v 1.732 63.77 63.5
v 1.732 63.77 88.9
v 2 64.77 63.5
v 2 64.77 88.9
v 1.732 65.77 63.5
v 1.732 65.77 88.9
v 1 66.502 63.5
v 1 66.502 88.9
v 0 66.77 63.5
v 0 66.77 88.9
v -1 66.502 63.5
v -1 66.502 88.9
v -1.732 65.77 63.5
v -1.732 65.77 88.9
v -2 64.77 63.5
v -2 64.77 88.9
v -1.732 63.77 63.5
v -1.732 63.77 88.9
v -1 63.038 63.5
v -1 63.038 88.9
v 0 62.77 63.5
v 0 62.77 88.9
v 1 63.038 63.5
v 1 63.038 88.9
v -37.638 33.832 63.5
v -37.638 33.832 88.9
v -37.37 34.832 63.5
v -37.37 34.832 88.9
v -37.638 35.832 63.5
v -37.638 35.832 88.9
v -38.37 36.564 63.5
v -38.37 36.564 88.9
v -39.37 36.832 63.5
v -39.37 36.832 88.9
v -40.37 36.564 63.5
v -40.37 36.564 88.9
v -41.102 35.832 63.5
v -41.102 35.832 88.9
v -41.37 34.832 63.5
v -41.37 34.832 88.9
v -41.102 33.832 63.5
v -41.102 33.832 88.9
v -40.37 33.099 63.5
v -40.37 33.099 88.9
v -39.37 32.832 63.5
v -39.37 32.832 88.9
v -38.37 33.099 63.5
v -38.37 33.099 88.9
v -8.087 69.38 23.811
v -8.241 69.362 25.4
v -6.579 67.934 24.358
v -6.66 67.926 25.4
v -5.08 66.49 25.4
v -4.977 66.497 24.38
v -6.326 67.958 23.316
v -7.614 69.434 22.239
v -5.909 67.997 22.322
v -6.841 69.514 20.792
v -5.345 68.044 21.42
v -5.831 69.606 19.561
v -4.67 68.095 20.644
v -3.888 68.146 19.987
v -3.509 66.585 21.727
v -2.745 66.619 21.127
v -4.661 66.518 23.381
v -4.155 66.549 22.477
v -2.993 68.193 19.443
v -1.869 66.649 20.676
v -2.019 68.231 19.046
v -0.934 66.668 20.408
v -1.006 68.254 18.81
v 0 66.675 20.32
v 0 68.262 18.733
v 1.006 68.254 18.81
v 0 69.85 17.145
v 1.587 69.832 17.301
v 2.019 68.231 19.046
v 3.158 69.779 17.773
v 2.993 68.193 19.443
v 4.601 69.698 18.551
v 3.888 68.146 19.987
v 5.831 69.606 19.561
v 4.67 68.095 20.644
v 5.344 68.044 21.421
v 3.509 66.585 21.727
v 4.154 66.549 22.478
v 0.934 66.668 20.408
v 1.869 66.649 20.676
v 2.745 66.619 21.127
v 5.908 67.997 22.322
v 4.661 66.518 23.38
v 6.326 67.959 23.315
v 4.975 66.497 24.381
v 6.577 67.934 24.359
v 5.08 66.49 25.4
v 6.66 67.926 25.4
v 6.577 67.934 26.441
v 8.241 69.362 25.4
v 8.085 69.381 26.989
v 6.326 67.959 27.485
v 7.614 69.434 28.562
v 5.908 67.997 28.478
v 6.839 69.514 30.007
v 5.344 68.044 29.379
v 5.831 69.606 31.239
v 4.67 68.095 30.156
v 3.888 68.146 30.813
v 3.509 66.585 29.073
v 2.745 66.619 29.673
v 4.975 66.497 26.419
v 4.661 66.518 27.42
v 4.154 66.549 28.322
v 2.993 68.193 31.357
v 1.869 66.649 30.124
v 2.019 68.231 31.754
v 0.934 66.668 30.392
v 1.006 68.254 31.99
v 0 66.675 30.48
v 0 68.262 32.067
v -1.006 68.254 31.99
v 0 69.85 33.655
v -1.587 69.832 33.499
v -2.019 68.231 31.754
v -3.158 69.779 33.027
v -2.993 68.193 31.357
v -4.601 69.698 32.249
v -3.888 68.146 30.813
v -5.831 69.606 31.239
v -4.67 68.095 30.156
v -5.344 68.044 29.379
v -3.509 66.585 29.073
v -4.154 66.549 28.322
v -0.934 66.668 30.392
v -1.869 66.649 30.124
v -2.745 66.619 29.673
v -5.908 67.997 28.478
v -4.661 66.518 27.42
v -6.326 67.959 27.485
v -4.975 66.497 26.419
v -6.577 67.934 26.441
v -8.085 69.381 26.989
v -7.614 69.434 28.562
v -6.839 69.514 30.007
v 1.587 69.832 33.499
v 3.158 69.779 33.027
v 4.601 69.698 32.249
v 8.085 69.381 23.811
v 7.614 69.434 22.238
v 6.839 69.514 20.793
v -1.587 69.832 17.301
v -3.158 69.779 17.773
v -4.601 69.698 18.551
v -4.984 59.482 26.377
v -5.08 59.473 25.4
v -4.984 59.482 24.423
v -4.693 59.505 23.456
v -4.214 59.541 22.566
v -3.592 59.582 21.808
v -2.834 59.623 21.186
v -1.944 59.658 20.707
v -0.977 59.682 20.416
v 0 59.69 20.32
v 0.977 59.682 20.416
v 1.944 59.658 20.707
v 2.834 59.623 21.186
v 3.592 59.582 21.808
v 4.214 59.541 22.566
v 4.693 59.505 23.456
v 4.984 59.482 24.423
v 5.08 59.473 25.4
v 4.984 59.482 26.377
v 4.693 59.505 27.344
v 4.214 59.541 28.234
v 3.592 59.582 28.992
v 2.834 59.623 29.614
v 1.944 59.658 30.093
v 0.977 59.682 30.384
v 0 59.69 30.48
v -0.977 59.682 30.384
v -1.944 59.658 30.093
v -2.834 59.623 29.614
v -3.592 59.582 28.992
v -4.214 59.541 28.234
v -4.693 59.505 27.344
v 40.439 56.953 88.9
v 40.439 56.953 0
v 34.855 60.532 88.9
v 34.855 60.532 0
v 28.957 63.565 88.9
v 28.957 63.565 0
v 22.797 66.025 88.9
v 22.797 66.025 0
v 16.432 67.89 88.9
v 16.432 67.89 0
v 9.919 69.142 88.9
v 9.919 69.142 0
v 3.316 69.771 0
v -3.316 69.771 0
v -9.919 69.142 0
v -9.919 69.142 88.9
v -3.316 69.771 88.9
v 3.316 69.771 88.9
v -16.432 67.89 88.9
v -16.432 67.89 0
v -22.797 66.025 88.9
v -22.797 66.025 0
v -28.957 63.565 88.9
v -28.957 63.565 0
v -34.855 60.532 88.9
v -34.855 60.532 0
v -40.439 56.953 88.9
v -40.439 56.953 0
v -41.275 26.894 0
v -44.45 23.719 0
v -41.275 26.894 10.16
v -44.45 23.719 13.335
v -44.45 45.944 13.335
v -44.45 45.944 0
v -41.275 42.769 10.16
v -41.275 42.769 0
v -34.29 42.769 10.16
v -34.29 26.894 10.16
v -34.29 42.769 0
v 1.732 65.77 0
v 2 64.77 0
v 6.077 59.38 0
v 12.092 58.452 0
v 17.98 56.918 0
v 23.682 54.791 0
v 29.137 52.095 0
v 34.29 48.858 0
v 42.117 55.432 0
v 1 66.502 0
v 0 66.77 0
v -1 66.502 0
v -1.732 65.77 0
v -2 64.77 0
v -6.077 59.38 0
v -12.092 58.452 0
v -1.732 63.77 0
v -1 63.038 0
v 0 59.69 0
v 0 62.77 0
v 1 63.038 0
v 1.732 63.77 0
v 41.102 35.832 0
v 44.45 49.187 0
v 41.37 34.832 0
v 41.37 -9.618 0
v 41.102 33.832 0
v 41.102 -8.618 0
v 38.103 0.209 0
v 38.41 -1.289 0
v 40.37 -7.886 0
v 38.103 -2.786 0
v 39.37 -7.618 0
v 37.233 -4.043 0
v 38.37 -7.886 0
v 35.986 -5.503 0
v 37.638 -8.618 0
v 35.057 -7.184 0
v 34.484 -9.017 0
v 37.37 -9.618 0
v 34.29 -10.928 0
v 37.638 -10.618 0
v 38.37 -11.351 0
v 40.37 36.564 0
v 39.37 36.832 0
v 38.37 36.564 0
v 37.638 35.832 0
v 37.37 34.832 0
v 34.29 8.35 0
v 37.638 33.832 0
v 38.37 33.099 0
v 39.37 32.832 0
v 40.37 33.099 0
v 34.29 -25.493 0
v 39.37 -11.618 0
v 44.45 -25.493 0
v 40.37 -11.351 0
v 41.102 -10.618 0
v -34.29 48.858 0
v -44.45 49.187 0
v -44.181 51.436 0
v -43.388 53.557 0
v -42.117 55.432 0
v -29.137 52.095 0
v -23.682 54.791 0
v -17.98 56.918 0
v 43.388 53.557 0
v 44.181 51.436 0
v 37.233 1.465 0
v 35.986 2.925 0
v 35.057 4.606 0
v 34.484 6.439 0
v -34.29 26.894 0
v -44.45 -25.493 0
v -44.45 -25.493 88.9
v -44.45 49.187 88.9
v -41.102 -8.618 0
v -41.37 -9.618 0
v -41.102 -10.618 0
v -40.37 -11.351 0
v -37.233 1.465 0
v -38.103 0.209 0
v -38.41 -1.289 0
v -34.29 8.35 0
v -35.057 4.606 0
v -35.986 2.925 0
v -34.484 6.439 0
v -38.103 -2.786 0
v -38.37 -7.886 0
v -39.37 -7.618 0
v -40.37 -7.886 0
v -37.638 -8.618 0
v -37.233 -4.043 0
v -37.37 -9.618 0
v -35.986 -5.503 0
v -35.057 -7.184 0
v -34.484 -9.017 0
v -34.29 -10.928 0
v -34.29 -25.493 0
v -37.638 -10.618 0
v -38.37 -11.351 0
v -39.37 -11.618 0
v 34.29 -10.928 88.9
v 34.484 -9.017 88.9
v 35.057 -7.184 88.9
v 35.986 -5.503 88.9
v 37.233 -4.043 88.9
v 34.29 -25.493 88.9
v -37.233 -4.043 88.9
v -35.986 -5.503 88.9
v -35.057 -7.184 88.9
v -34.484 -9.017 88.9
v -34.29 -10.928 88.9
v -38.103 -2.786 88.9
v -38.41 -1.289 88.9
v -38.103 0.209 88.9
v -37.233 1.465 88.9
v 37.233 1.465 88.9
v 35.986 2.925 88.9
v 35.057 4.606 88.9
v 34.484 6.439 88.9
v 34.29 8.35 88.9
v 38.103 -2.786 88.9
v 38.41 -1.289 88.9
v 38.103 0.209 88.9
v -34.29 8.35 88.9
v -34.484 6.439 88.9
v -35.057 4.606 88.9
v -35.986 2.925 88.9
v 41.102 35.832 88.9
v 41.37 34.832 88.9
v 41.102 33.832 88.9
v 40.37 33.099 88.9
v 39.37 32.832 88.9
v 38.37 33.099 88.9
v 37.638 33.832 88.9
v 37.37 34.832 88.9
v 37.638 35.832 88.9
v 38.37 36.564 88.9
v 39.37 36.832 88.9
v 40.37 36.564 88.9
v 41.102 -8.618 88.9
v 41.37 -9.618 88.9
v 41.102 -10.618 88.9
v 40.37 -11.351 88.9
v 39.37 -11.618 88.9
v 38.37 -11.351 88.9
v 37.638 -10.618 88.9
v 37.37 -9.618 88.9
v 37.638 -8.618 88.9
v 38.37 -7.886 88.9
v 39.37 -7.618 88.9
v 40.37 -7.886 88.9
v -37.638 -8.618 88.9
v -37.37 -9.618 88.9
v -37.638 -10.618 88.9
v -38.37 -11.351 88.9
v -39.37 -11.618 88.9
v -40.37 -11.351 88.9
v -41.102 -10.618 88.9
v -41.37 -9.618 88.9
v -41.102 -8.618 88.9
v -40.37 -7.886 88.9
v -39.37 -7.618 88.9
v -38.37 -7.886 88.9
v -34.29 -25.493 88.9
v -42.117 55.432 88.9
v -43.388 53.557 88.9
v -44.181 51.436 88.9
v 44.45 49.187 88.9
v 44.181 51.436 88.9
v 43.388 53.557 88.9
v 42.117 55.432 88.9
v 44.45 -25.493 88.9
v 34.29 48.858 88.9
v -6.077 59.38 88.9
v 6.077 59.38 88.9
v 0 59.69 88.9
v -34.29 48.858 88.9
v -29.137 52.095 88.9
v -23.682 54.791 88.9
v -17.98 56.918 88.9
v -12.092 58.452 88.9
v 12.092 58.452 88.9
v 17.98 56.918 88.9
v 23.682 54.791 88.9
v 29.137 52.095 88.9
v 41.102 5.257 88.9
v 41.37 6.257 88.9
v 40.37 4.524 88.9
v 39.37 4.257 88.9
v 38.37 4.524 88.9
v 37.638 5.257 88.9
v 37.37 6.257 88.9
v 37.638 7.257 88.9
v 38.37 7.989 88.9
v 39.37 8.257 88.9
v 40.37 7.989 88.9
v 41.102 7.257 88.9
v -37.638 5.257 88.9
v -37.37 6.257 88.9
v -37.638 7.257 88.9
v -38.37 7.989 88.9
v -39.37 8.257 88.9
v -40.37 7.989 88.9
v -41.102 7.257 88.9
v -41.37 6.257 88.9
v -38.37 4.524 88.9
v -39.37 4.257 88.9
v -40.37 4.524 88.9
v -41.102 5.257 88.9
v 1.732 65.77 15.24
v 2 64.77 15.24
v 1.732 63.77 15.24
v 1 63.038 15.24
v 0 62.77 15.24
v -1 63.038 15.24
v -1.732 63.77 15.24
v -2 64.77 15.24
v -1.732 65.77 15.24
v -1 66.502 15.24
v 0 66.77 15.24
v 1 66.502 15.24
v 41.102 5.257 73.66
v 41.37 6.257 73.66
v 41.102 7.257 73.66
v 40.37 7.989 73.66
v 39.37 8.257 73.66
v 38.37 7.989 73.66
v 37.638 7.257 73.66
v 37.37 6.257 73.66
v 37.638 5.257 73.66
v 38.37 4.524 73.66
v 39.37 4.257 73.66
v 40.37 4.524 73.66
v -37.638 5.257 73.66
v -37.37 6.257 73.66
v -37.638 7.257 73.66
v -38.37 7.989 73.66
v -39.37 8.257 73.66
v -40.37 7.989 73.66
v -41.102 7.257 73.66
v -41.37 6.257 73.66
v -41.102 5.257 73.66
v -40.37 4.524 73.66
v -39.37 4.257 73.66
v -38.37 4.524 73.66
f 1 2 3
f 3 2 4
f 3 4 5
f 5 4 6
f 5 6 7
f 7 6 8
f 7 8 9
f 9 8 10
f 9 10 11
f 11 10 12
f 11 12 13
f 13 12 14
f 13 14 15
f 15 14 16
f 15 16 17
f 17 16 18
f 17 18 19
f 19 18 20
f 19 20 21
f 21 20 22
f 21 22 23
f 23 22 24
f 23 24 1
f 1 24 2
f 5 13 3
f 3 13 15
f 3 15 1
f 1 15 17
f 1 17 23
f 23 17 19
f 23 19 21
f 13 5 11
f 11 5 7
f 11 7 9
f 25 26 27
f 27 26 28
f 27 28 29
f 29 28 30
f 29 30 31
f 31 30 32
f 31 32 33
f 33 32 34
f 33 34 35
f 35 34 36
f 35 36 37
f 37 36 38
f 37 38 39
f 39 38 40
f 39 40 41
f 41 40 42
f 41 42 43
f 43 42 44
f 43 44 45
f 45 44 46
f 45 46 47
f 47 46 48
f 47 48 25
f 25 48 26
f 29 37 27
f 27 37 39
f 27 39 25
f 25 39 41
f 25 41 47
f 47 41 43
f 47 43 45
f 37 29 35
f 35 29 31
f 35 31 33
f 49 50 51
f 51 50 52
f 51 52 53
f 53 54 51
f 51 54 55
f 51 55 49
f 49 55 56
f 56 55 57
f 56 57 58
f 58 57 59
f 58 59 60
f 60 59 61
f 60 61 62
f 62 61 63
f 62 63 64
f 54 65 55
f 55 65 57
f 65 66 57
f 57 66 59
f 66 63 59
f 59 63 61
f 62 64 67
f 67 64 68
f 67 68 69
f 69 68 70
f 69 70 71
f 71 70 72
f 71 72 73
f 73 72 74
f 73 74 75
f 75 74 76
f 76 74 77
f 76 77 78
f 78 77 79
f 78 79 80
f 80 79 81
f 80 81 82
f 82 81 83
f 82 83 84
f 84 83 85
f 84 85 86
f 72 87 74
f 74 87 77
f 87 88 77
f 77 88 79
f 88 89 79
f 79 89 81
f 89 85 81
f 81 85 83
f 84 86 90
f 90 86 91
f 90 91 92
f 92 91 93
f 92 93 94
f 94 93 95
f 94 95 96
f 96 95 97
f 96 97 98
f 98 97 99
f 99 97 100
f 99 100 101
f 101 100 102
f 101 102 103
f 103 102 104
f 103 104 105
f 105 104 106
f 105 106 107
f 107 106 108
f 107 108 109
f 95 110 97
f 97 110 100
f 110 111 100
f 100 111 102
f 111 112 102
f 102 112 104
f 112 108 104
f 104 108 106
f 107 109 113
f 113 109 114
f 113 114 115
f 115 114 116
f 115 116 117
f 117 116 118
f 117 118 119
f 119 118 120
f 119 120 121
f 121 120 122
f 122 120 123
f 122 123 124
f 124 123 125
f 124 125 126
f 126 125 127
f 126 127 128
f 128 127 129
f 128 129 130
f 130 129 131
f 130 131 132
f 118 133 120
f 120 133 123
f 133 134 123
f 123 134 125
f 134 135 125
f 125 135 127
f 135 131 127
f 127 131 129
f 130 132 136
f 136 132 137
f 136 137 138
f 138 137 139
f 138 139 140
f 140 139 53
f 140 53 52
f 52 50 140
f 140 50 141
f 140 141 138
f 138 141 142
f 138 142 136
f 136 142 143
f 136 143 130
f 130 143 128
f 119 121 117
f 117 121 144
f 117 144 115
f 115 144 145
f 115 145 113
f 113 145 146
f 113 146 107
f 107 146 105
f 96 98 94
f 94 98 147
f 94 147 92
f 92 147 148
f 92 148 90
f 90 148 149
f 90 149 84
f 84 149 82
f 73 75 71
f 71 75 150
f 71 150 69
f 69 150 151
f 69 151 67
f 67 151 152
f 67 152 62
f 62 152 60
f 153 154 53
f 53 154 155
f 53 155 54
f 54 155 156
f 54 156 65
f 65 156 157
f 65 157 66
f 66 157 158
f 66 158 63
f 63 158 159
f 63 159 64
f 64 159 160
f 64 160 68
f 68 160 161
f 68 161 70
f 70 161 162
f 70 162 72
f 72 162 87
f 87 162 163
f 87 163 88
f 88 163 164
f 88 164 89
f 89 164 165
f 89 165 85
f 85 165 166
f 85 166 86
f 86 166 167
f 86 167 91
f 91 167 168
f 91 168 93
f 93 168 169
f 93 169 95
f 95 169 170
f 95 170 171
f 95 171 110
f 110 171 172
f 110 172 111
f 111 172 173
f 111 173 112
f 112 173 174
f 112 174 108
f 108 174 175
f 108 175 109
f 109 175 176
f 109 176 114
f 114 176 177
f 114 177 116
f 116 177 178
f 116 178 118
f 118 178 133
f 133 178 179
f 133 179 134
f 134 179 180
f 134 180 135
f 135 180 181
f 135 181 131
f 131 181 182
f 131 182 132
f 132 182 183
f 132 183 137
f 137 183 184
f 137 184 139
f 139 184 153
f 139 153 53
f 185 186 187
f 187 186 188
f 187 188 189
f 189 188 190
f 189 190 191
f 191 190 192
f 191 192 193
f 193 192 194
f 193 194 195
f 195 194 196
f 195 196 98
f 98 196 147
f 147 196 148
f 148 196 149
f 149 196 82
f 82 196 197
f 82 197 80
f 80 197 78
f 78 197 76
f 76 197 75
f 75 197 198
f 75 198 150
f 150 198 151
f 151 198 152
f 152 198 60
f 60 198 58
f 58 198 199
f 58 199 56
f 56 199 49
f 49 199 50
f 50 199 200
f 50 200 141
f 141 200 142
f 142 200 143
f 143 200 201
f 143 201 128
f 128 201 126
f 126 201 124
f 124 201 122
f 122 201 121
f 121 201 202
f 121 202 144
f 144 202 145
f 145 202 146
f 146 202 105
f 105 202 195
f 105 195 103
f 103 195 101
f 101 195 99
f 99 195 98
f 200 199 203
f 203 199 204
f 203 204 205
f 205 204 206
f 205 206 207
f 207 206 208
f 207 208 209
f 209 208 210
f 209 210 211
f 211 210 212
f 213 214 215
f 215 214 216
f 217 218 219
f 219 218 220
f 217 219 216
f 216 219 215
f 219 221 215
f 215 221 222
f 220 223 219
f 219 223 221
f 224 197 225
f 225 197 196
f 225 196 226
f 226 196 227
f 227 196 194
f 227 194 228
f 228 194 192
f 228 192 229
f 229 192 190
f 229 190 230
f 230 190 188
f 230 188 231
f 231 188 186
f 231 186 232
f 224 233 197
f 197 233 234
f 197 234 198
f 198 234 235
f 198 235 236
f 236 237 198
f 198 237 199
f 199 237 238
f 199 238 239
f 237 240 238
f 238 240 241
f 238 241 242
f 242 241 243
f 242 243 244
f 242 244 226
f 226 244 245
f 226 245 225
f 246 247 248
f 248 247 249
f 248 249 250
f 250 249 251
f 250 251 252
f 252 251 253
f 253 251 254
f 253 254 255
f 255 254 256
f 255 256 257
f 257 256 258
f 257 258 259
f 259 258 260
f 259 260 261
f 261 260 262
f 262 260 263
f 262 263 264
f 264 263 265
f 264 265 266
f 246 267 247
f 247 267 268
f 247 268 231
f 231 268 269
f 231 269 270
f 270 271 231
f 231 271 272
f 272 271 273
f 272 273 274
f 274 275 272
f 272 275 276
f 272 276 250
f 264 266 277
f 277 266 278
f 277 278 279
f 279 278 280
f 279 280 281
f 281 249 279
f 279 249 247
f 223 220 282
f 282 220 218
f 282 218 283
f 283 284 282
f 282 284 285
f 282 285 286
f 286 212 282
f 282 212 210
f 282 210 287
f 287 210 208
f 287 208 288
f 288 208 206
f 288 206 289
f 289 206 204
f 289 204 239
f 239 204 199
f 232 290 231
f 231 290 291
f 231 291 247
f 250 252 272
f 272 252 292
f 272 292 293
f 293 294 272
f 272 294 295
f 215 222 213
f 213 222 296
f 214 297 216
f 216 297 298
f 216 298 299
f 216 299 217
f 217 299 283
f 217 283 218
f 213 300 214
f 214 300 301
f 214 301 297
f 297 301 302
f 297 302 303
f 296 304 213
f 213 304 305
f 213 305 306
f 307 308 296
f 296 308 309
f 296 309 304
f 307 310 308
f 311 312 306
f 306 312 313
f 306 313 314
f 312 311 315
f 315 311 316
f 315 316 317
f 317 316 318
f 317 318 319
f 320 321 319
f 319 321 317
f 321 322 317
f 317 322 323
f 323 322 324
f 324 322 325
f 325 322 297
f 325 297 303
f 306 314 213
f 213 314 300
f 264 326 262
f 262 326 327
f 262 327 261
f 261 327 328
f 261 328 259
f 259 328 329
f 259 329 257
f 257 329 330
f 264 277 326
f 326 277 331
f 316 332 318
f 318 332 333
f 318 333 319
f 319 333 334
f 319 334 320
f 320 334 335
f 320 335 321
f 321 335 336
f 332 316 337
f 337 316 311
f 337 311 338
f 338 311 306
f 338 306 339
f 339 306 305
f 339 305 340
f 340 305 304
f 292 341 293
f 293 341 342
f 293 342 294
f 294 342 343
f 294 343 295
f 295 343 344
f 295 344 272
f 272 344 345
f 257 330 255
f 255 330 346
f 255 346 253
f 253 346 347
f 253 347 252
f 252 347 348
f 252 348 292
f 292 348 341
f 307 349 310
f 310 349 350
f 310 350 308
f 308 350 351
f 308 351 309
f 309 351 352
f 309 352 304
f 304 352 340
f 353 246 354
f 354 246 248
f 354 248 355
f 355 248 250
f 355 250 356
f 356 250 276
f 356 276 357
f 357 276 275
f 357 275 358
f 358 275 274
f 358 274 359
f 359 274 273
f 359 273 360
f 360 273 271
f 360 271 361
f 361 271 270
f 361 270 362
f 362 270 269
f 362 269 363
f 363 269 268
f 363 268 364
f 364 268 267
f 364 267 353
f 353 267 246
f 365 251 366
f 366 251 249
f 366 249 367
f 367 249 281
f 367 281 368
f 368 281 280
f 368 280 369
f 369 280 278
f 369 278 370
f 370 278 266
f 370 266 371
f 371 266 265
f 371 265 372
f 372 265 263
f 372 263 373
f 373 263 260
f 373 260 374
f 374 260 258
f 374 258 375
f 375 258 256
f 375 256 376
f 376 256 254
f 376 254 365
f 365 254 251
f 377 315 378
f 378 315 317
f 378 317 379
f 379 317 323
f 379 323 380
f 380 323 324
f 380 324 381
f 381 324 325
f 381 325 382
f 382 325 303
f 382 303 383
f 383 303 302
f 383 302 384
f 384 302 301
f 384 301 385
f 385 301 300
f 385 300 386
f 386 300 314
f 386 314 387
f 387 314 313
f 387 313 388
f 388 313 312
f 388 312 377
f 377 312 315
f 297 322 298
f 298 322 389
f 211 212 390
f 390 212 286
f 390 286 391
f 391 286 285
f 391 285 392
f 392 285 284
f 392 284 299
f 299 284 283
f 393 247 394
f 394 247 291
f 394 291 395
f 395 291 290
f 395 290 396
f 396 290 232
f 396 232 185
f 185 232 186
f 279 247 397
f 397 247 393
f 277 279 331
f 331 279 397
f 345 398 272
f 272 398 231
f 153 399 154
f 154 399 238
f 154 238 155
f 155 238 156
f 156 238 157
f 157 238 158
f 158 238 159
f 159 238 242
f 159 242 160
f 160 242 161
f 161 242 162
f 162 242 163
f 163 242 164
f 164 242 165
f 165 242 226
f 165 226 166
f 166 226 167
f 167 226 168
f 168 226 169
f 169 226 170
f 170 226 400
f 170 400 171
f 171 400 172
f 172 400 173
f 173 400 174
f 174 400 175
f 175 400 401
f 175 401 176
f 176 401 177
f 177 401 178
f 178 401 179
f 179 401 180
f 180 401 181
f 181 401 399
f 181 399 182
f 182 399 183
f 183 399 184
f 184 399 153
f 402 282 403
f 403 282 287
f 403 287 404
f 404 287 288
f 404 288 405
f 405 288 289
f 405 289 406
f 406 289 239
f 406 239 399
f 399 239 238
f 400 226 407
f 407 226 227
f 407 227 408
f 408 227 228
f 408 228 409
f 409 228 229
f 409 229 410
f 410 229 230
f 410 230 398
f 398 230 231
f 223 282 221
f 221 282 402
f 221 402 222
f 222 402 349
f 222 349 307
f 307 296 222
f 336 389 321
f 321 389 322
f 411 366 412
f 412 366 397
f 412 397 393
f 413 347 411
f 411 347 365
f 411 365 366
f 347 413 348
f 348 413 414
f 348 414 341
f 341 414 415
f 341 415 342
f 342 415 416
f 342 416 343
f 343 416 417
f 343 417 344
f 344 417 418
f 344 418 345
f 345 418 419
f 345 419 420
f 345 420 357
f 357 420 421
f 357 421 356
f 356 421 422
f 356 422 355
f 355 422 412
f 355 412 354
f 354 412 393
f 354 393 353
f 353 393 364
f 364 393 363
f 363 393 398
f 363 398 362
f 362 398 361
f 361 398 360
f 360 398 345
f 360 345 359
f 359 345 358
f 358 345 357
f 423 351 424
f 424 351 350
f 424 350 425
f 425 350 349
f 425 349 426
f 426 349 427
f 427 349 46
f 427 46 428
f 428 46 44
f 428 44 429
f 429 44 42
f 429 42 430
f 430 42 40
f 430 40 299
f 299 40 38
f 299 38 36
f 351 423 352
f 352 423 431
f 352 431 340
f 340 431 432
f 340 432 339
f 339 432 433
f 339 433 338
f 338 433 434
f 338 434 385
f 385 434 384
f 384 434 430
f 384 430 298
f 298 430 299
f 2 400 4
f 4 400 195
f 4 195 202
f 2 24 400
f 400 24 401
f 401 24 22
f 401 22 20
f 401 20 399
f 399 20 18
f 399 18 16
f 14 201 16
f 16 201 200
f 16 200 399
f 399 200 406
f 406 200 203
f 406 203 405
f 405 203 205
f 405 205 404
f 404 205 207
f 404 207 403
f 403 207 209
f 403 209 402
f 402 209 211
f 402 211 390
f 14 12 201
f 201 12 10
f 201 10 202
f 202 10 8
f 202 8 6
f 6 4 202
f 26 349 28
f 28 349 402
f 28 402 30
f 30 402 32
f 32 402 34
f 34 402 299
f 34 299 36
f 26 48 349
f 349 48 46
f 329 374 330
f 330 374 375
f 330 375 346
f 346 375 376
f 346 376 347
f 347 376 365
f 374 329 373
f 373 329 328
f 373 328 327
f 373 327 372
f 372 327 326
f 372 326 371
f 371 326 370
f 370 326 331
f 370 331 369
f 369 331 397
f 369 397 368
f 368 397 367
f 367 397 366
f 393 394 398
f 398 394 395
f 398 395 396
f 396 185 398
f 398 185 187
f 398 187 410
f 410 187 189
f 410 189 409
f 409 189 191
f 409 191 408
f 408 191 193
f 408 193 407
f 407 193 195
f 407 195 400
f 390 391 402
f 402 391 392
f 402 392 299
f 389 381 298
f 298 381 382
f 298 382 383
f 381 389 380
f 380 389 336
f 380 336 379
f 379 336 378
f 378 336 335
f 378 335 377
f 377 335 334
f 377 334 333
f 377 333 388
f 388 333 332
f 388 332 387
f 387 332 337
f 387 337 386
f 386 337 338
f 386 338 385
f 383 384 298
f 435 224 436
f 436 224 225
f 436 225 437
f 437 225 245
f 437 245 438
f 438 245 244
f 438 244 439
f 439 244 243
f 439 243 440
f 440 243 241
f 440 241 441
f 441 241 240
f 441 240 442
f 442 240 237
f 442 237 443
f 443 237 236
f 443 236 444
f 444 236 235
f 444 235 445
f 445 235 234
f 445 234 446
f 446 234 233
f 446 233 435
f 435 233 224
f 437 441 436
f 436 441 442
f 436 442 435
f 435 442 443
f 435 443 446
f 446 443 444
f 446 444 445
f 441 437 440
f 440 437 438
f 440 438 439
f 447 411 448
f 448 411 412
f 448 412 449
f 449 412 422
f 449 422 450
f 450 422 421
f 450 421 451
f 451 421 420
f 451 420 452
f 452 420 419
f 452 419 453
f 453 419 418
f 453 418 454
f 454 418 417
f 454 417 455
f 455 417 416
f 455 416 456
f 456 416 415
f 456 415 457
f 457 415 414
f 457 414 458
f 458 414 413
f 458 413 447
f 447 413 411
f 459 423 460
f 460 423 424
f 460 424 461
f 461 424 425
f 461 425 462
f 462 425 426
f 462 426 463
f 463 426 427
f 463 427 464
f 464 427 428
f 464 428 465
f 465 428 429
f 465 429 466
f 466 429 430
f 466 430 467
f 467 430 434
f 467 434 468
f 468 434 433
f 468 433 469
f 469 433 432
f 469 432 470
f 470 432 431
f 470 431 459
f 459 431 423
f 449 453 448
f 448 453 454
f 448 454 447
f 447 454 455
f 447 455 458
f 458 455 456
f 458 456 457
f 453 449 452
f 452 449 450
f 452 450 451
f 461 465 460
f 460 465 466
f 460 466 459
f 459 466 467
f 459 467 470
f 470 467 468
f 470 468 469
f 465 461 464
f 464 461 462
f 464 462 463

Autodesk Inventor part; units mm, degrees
ref_plane "YZ Plane" through (0, 0, 0) normal (1, 0, 0) x (0, 1, 0)
ref_plane "XZ Plane" through (0, 0, 0) normal (0, 1, 0) x (-1, 0, 0)
ref_plane "XY Plane" through (0, 0, 0) normal (0, 0, 1) x (1, 0, 0)
sketch "Sketch1" plane through (0, 0, 0) normal (0, 0, 1) x (1, 0, 0)
  arc A0 (40.4395, 56.9532) -> (-40.4395, 56.9532) centre (0, 0) ccw
  arc A1 (-40.4395, 56.9532) -> (-44.45, 49.1869) centre (-34.925, 49.1869) ccw
  circle A2 centre (0, 64.77) radius 2
  arc A3 (44.45, 49.1869) -> (40.4395, 56.9532) centre (34.925, 49.1869) ccw
  line L0 (44.45, -25.4935) -> (44.45, 49.1869)
  line L1 (-44.45, 49.1869) -> (-44.45, -25.4935)
  circle A4 centre (-39.37, 34.8315) radius 2
  circle A5 centre (39.37, 34.8315) radius 2
  circle A6 centre (39.37, -9.6185) radius 2
  circle A7 centre (-39.37, -9.6185) radius 2
  circle A8 centre (-34.6, -1.2888) radius 2
  circle A9 centre (34.6, -1.2888) radius 2
  line L2 (-39.37, -9.6185) -> (-39.37, -25.4935)
  line L3 (-39.37, -25.4935) -> (-44.45, -25.4935)
  circle A10 centre (-34.6, -1.2888) radius 3.81
  circle A11 centre (34.6, -1.2888) radius 3.81
  line L4 (-34.29, -25.4935) -> (-34.29, 48.8579)
  arc A12 (34.29, 48.8579) -> (-34.29, 48.8579) centre (0, 0) ccw
  line L5 (34.29, 48.8579) -> (34.29, -25.4935)
  line L6 (-39.37, -25.4935) -> (-34.29, -25.4935)
  line L7 (34.29, -25.4935) -> (44.45, -25.4935)
  point P0 (0, 0)
  point P1 (-34.29, -5.0862)
  point P2 (-34.29, 2.5086)
  point P3 (34.29, 2.5086)
  point P4 (34.29, -5.0862)
  dimension "d0" = 7.62
  dimension "d1" = 7.62
  dimension "d2" = 10.16
extrude "Extrusion1" add sketch "Sketch1" along normal blind 88.9 contours A3 L0 L7 L5 A11 A12 L4 A10 L6 L3 L1 A1 A0 | A2 | A4
fillet "Fillet1" radius 9.525 4 edges at (-34.29, 2.5086, 44.45) (34.29, 2.5086, 44.45) (-34.29, -5.0862, 44.45) (34.29, -5.0862, 44.45)
sketch "Sketch5" plane through (34.29, -25.4935, 0) normal (0, -1, 0) x (1, 0, 0)
  line L0 (-68.58, 0) -> (-68.58, 88.9)
  line L1 (0, 88.9) -> (0, 0)
  line L2 (-68.58, 0) -> (0, 0)
  line L3 (-68.58, 0) -> (-34.29, 0)
  line L4 (-34.29, 0) -> (-34.29, 88.9)
  line L5 (-34.29, 0) -> (-34.29, 25.4)
  circle A0 centre (-34.29, 25.4) radius 5.08
  dimension "d39" = 25.4
  dimension "d40" = 10.16
extrude "Extrusion5" cut sketch "Sketch5" against normal through all
sketch "Sketch6" plane through (0, 0, 0) normal (0, 0, -1) x (-1, 0, 0)
  arc A0 (-34.29, -10.9276) -> (-37.2329, -4.0427) centre (-43.815, -10.9276) ccw
  arc A1 (-37.2329, 1.4651) -> (-37.2329, -4.0427) centre (-34.6, -1.2888) ccw
  arc A2 (-37.2329, 1.4651) -> (-34.29, 8.35) centre (-43.815, 8.35) ccw
  line L0 (-34.29, 48.8579) -> (-34.29, 8.35)
  arc A3 (34.29, 48.8579) -> (-34.29, 48.8579) centre (0, 0) ccw
  line L1 (34.29, 8.35) -> (34.29, 48.8579)
  arc A4 (34.29, 8.35) -> (37.2329, 1.4651) centre (43.815, 8.35) ccw
  arc A5 (37.2329, -4.0427) -> (37.2329, 1.4651) centre (34.6, -1.2888) ccw
  arc A6 (37.2329, -4.0427) -> (34.29, -10.9276) centre (43.815, -10.9276) ccw
  line L2 (34.29, -25.4935) -> (34.29, -10.9276)
  line L3 (44.45, -25.4935) -> (34.29, -25.4935)
  line L4 (44.45, 49.1869) -> (44.45, -25.4935)
  arc A7 (44.45, 49.1869) -> (40.4395, 56.9532) centre (34.925, 49.1869) ccw
  arc A8 (40.4395, 56.9532) -> (-40.4395, 56.9532) centre (0, 0) ccw
  arc A9 (-40.4395, 56.9532) -> (-44.45, 49.1869) centre (-34.925, 49.1869) ccw
  line L5 (-44.45, -25.4935) -> (-44.45, 49.1869)
  line L6 (-34.29, -25.4935) -> (-44.45, -25.4935)
  line L7 (-34.29, -10.9276) -> (-34.29, -25.4935)
  circle A10 centre (39.37, -9.6185) radius 2
  circle A11 centre (-39.37, -9.6185) radius 2
  circle A12 centre (-39.37, 34.8315) radius 2
  line L8 (39.37, 34.8315) -> (39.37, 42.769)
  line L9 (39.37, 42.769) -> (39.37, 26.894)
  line L10 (39.37, 42.769) -> (47.6019, 42.769)
  line L11 (39.37, 26.894) -> (47.6019, 26.894)
  line L12 (39.37, 42.769) -> (31.4554, 42.769)
  line L13 (39.37, 26.894) -> (31.1414, 26.894)
  point P0 (0, 0)
  point P1 (34.29, 42.769)
  point P2 (34.29, 26.894)
  point P3 (44.45, 26.894)
  point P4 (44.45, 42.769)
  dimension "d43" = 7.9375
  dimension "d44" = 15.875
extrude "Extrusion6" cut sketch "Sketch6" against normal blind 10.16 contours L12 L8 L9 L13 L1 | L10 L4 L11 L9 L8
chamfer "Chamfer3" distance 3.175 angle 45 3 edges at (-44.45, 34.8315, 10.16) (-44.45, 42.769, 5.08) (-44.45, 26.894, 5.08)
chamfer "Chamfer4" distance 3.175 angle 45 1 edges at (-5.0799, 69.665, 25.4351)
sketch "Sketch7" plane through (0, 0, 88.9) normal (0, 0, 1) x (1, 0, 0)
  circle A0 centre (0, 64.77) radius 2
  circle A1 centre (-39.37, 34.8315) radius 2
  point P0 (0, 0)
extrude "Extrusion7" cut sketch "Sketch7" against normal blind 25.4
sketch "Sketch8" plane through (0, 0, 0) normal (0, 0, -1) x (-1, 0, 0)
  point P0 (0, 0)
extrude "Extrusion8" cut sketch "Sketch1" along normal blind 15.24 contours A2
sketch "Sketch9" plane through (0, 0, 88.9) normal (0, 0, 1) x (1, 0, 0)
  circle A0 centre (-39.37, 34.8315) radius 2
  line L0 (-39.37, 34.8315) -> (-39.37, 6.2565)
  circle A1 centre (-39.37, 6.2565) radius 2
  circle A2 centre (39.37, 34.8315) radius 2
  line L1 (39.37, 34.8315) -> (39.37, 6.2565)
  circle A3 centre (39.37, 6.2565) radius 2
  point P0 (0, 0)
  dimension "d57" = 28.575
  dimension "d58" = 4
  dimension "d59" = 28.575
  dimension "d60" = 4
extrude "Extrusion9" cut sketch "Sketch9" against normal blind 15.24 contours A1 | A3
properties part number "back wall"
